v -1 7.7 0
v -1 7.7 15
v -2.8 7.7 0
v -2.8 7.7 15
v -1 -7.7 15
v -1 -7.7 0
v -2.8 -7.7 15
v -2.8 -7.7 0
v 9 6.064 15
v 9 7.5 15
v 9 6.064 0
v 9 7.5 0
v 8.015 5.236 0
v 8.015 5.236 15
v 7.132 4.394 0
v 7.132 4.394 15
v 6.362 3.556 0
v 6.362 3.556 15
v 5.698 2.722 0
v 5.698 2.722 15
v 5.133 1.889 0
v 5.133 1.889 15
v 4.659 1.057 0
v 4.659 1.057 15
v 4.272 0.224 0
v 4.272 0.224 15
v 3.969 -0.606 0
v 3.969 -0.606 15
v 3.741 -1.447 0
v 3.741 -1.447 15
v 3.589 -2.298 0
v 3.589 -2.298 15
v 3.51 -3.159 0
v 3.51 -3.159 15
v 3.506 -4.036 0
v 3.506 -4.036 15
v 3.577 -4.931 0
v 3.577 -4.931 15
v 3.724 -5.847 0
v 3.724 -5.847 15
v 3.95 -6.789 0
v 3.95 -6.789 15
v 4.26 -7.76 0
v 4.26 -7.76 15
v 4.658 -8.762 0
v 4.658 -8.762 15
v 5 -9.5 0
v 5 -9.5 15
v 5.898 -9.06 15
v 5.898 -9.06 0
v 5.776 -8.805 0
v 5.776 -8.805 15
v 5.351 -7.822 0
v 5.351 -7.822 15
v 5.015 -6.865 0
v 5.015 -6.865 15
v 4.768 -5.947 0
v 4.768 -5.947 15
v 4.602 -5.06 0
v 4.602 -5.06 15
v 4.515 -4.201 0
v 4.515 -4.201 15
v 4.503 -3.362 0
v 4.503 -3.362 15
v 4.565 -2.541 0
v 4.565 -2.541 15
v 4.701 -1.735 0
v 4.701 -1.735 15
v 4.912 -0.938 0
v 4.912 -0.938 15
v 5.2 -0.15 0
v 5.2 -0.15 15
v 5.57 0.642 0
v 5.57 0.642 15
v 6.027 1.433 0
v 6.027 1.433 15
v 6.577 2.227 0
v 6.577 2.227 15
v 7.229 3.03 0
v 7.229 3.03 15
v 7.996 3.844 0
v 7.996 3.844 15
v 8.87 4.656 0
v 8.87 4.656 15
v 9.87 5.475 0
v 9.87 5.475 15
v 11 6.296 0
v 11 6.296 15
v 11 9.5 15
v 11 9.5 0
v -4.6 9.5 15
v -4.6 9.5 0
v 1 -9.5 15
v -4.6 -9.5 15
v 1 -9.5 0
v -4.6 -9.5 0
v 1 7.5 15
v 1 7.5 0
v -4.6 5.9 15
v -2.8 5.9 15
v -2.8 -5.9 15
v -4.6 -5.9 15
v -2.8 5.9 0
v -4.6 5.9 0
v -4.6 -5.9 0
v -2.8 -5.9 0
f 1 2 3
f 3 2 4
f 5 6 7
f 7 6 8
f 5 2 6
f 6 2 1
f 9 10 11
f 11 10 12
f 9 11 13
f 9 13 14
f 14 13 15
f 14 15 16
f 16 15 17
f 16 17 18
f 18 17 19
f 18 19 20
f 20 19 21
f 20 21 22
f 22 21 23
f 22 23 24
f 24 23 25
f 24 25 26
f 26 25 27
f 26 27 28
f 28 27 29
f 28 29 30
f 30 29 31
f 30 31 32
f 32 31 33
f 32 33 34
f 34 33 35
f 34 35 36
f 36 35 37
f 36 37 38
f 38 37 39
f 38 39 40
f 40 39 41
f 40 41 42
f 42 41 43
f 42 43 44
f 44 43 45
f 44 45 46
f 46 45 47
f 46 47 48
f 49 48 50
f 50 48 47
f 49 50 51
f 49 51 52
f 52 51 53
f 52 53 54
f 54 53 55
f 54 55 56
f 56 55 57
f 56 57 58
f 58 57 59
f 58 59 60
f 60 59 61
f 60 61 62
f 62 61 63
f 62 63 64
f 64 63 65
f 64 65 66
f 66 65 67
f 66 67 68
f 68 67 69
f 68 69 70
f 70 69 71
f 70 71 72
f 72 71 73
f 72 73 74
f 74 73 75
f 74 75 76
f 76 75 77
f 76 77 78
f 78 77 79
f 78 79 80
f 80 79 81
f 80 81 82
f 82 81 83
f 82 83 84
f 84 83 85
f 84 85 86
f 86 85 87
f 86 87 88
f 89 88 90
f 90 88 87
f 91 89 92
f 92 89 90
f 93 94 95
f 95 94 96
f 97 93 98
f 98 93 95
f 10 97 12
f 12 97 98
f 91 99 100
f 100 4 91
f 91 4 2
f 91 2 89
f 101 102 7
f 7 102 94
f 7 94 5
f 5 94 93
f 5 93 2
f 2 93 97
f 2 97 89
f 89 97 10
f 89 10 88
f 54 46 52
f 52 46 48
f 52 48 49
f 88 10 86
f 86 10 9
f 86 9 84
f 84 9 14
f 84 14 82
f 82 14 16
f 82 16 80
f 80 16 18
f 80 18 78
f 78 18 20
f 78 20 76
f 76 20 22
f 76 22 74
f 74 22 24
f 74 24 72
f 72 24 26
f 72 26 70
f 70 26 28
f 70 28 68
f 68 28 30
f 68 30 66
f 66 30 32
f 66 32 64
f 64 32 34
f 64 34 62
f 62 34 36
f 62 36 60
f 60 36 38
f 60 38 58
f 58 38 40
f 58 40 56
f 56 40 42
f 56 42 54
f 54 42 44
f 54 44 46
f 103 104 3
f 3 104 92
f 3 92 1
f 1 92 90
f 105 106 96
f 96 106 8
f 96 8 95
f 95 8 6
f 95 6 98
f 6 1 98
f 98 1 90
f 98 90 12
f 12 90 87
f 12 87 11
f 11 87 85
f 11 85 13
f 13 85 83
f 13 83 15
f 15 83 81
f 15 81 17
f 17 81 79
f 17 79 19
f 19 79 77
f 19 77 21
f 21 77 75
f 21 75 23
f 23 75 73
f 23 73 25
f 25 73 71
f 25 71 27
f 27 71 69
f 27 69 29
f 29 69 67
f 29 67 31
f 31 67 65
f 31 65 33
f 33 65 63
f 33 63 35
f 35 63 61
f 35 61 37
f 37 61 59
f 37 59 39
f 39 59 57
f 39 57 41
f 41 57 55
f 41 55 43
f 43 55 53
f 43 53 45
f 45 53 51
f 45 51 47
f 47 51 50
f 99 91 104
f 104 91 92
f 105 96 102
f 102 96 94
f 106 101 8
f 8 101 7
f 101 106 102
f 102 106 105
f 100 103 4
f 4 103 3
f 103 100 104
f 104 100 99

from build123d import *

# Parameters (mm, degrees)
AUFSATZ_LINEAR_AUSTRAGEN1_DEPTH = 15
SKIZZE8_W                       = 15
SKIZZE8_H                       = 1.8
AUFSATZ_LINEAR_AUSTRAGEN2_DEPTH = 3.6
SKIZZE9_W                       = 1.8
SKIZZE9_H                       = 15
AUFSATZ_LINEAR_AUSTRAGEN3_DEPTH = 1.8
SKIZZE10_W                      = 1.8
SKIZZE10_H                      = 15
AUFSATZ_LINEAR_AUSTRAGEN4_DEPTH = 1.8


# Read off the part's stored shape, not the designer's step: Aufsatz-Linear austragen1
with BuildPart() as part:
    # Aufsatz-Linear austragen1 outline → Aufsatz-Linear austragen1 (new body)
    with BuildSketch(Plane.XY):
        with BuildLine():
            Line((9, 7.5), (9, 6.063801072))
            add(Edge.make_bspline(
                [(9, 6.063801072), (0.625422786, -0.579708044), (5, -9.5)],
                knots=[0.099237207, 0.099237207, 0.099237207, 1, 1, 1], degree=2))
            Line((5, -9.5), (5.897845721, -9.059689812))
            add(Edge.make_bspline(
                [(11, 6.296359693), (10.760549258, 6.131767377), (10.109849177, 5.669537639), (8.781306837, 4.626115655), (7.217816891, 3.118827009), (5.842447746, 1.269563984), (4.939494511, -0.621982734), (4.487436221, -2.56912246), (4.473192517, -4.602736578), (4.838873177, -6.401075315), (5.360722545, -7.892341674), (5.712043828, -8.68082614), (5.897845721, -9.059689812)],
                knots=[0.026920818, 0.026920818, 0.026920818, 0.026920818, 0.0625, 0.125, 0.25, 0.375, 0.5, 0.625, 0.75, 0.875, 0.9375, 1, 1, 1, 1], degree=3))
            Line((11, 6.296359693), (11, 9.5))
            Line((11, 9.5), (-1, 9.5))
            Line((-1, 9.5), (-1, -9.5))
            Line((-1, -9.5), (1, -9.5))
            Line((1, -9.5), (1, 7.5))
            Line((1, 7.5), (9, 7.5))
        make_face()
    extrude(amount=AUFSATZ_LINEAR_AUSTRAGEN1_DEPTH)

    # Skizze8 → Aufsatz-Linear austragen2 (add)
    with BuildSketch(Plane.ZY.offset(1)):
        with Locations((7.5, 8.6)):
            Rectangle(SKIZZE8_W, SKIZZE8_H)
        with Locations((7.5, -8.6)):
            Rectangle(SKIZZE8_W, SKIZZE8_H)
    extrude(amount=AUFSATZ_LINEAR_AUSTRAGEN2_DEPTH)

    # Skizze9 → Aufsatz-Linear austragen3 (add)
    with BuildSketch(Plane(origin=(0, -7.7, 0), x_dir=(1, 0, 0), z_dir=(0, 1, 0))):
        with Locations((-3.7, -7.5)):
            Rectangle(SKIZZE9_W, SKIZZE9_H)
    extrude(amount=AUFSATZ_LINEAR_AUSTRAGEN3_DEPTH)

    # Skizze10 → Aufsatz-Linear austragen4 (add)
    with BuildSketch(Plane.XZ.offset(-7.7)):
        with Locations((-3.7, 7.5)):
            Rectangle(SKIZZE10_W, SKIZZE10_H)
    extrude(amount=AUFSATZ_LINEAR_AUSTRAGEN4_DEPTH)


solid = part.part
